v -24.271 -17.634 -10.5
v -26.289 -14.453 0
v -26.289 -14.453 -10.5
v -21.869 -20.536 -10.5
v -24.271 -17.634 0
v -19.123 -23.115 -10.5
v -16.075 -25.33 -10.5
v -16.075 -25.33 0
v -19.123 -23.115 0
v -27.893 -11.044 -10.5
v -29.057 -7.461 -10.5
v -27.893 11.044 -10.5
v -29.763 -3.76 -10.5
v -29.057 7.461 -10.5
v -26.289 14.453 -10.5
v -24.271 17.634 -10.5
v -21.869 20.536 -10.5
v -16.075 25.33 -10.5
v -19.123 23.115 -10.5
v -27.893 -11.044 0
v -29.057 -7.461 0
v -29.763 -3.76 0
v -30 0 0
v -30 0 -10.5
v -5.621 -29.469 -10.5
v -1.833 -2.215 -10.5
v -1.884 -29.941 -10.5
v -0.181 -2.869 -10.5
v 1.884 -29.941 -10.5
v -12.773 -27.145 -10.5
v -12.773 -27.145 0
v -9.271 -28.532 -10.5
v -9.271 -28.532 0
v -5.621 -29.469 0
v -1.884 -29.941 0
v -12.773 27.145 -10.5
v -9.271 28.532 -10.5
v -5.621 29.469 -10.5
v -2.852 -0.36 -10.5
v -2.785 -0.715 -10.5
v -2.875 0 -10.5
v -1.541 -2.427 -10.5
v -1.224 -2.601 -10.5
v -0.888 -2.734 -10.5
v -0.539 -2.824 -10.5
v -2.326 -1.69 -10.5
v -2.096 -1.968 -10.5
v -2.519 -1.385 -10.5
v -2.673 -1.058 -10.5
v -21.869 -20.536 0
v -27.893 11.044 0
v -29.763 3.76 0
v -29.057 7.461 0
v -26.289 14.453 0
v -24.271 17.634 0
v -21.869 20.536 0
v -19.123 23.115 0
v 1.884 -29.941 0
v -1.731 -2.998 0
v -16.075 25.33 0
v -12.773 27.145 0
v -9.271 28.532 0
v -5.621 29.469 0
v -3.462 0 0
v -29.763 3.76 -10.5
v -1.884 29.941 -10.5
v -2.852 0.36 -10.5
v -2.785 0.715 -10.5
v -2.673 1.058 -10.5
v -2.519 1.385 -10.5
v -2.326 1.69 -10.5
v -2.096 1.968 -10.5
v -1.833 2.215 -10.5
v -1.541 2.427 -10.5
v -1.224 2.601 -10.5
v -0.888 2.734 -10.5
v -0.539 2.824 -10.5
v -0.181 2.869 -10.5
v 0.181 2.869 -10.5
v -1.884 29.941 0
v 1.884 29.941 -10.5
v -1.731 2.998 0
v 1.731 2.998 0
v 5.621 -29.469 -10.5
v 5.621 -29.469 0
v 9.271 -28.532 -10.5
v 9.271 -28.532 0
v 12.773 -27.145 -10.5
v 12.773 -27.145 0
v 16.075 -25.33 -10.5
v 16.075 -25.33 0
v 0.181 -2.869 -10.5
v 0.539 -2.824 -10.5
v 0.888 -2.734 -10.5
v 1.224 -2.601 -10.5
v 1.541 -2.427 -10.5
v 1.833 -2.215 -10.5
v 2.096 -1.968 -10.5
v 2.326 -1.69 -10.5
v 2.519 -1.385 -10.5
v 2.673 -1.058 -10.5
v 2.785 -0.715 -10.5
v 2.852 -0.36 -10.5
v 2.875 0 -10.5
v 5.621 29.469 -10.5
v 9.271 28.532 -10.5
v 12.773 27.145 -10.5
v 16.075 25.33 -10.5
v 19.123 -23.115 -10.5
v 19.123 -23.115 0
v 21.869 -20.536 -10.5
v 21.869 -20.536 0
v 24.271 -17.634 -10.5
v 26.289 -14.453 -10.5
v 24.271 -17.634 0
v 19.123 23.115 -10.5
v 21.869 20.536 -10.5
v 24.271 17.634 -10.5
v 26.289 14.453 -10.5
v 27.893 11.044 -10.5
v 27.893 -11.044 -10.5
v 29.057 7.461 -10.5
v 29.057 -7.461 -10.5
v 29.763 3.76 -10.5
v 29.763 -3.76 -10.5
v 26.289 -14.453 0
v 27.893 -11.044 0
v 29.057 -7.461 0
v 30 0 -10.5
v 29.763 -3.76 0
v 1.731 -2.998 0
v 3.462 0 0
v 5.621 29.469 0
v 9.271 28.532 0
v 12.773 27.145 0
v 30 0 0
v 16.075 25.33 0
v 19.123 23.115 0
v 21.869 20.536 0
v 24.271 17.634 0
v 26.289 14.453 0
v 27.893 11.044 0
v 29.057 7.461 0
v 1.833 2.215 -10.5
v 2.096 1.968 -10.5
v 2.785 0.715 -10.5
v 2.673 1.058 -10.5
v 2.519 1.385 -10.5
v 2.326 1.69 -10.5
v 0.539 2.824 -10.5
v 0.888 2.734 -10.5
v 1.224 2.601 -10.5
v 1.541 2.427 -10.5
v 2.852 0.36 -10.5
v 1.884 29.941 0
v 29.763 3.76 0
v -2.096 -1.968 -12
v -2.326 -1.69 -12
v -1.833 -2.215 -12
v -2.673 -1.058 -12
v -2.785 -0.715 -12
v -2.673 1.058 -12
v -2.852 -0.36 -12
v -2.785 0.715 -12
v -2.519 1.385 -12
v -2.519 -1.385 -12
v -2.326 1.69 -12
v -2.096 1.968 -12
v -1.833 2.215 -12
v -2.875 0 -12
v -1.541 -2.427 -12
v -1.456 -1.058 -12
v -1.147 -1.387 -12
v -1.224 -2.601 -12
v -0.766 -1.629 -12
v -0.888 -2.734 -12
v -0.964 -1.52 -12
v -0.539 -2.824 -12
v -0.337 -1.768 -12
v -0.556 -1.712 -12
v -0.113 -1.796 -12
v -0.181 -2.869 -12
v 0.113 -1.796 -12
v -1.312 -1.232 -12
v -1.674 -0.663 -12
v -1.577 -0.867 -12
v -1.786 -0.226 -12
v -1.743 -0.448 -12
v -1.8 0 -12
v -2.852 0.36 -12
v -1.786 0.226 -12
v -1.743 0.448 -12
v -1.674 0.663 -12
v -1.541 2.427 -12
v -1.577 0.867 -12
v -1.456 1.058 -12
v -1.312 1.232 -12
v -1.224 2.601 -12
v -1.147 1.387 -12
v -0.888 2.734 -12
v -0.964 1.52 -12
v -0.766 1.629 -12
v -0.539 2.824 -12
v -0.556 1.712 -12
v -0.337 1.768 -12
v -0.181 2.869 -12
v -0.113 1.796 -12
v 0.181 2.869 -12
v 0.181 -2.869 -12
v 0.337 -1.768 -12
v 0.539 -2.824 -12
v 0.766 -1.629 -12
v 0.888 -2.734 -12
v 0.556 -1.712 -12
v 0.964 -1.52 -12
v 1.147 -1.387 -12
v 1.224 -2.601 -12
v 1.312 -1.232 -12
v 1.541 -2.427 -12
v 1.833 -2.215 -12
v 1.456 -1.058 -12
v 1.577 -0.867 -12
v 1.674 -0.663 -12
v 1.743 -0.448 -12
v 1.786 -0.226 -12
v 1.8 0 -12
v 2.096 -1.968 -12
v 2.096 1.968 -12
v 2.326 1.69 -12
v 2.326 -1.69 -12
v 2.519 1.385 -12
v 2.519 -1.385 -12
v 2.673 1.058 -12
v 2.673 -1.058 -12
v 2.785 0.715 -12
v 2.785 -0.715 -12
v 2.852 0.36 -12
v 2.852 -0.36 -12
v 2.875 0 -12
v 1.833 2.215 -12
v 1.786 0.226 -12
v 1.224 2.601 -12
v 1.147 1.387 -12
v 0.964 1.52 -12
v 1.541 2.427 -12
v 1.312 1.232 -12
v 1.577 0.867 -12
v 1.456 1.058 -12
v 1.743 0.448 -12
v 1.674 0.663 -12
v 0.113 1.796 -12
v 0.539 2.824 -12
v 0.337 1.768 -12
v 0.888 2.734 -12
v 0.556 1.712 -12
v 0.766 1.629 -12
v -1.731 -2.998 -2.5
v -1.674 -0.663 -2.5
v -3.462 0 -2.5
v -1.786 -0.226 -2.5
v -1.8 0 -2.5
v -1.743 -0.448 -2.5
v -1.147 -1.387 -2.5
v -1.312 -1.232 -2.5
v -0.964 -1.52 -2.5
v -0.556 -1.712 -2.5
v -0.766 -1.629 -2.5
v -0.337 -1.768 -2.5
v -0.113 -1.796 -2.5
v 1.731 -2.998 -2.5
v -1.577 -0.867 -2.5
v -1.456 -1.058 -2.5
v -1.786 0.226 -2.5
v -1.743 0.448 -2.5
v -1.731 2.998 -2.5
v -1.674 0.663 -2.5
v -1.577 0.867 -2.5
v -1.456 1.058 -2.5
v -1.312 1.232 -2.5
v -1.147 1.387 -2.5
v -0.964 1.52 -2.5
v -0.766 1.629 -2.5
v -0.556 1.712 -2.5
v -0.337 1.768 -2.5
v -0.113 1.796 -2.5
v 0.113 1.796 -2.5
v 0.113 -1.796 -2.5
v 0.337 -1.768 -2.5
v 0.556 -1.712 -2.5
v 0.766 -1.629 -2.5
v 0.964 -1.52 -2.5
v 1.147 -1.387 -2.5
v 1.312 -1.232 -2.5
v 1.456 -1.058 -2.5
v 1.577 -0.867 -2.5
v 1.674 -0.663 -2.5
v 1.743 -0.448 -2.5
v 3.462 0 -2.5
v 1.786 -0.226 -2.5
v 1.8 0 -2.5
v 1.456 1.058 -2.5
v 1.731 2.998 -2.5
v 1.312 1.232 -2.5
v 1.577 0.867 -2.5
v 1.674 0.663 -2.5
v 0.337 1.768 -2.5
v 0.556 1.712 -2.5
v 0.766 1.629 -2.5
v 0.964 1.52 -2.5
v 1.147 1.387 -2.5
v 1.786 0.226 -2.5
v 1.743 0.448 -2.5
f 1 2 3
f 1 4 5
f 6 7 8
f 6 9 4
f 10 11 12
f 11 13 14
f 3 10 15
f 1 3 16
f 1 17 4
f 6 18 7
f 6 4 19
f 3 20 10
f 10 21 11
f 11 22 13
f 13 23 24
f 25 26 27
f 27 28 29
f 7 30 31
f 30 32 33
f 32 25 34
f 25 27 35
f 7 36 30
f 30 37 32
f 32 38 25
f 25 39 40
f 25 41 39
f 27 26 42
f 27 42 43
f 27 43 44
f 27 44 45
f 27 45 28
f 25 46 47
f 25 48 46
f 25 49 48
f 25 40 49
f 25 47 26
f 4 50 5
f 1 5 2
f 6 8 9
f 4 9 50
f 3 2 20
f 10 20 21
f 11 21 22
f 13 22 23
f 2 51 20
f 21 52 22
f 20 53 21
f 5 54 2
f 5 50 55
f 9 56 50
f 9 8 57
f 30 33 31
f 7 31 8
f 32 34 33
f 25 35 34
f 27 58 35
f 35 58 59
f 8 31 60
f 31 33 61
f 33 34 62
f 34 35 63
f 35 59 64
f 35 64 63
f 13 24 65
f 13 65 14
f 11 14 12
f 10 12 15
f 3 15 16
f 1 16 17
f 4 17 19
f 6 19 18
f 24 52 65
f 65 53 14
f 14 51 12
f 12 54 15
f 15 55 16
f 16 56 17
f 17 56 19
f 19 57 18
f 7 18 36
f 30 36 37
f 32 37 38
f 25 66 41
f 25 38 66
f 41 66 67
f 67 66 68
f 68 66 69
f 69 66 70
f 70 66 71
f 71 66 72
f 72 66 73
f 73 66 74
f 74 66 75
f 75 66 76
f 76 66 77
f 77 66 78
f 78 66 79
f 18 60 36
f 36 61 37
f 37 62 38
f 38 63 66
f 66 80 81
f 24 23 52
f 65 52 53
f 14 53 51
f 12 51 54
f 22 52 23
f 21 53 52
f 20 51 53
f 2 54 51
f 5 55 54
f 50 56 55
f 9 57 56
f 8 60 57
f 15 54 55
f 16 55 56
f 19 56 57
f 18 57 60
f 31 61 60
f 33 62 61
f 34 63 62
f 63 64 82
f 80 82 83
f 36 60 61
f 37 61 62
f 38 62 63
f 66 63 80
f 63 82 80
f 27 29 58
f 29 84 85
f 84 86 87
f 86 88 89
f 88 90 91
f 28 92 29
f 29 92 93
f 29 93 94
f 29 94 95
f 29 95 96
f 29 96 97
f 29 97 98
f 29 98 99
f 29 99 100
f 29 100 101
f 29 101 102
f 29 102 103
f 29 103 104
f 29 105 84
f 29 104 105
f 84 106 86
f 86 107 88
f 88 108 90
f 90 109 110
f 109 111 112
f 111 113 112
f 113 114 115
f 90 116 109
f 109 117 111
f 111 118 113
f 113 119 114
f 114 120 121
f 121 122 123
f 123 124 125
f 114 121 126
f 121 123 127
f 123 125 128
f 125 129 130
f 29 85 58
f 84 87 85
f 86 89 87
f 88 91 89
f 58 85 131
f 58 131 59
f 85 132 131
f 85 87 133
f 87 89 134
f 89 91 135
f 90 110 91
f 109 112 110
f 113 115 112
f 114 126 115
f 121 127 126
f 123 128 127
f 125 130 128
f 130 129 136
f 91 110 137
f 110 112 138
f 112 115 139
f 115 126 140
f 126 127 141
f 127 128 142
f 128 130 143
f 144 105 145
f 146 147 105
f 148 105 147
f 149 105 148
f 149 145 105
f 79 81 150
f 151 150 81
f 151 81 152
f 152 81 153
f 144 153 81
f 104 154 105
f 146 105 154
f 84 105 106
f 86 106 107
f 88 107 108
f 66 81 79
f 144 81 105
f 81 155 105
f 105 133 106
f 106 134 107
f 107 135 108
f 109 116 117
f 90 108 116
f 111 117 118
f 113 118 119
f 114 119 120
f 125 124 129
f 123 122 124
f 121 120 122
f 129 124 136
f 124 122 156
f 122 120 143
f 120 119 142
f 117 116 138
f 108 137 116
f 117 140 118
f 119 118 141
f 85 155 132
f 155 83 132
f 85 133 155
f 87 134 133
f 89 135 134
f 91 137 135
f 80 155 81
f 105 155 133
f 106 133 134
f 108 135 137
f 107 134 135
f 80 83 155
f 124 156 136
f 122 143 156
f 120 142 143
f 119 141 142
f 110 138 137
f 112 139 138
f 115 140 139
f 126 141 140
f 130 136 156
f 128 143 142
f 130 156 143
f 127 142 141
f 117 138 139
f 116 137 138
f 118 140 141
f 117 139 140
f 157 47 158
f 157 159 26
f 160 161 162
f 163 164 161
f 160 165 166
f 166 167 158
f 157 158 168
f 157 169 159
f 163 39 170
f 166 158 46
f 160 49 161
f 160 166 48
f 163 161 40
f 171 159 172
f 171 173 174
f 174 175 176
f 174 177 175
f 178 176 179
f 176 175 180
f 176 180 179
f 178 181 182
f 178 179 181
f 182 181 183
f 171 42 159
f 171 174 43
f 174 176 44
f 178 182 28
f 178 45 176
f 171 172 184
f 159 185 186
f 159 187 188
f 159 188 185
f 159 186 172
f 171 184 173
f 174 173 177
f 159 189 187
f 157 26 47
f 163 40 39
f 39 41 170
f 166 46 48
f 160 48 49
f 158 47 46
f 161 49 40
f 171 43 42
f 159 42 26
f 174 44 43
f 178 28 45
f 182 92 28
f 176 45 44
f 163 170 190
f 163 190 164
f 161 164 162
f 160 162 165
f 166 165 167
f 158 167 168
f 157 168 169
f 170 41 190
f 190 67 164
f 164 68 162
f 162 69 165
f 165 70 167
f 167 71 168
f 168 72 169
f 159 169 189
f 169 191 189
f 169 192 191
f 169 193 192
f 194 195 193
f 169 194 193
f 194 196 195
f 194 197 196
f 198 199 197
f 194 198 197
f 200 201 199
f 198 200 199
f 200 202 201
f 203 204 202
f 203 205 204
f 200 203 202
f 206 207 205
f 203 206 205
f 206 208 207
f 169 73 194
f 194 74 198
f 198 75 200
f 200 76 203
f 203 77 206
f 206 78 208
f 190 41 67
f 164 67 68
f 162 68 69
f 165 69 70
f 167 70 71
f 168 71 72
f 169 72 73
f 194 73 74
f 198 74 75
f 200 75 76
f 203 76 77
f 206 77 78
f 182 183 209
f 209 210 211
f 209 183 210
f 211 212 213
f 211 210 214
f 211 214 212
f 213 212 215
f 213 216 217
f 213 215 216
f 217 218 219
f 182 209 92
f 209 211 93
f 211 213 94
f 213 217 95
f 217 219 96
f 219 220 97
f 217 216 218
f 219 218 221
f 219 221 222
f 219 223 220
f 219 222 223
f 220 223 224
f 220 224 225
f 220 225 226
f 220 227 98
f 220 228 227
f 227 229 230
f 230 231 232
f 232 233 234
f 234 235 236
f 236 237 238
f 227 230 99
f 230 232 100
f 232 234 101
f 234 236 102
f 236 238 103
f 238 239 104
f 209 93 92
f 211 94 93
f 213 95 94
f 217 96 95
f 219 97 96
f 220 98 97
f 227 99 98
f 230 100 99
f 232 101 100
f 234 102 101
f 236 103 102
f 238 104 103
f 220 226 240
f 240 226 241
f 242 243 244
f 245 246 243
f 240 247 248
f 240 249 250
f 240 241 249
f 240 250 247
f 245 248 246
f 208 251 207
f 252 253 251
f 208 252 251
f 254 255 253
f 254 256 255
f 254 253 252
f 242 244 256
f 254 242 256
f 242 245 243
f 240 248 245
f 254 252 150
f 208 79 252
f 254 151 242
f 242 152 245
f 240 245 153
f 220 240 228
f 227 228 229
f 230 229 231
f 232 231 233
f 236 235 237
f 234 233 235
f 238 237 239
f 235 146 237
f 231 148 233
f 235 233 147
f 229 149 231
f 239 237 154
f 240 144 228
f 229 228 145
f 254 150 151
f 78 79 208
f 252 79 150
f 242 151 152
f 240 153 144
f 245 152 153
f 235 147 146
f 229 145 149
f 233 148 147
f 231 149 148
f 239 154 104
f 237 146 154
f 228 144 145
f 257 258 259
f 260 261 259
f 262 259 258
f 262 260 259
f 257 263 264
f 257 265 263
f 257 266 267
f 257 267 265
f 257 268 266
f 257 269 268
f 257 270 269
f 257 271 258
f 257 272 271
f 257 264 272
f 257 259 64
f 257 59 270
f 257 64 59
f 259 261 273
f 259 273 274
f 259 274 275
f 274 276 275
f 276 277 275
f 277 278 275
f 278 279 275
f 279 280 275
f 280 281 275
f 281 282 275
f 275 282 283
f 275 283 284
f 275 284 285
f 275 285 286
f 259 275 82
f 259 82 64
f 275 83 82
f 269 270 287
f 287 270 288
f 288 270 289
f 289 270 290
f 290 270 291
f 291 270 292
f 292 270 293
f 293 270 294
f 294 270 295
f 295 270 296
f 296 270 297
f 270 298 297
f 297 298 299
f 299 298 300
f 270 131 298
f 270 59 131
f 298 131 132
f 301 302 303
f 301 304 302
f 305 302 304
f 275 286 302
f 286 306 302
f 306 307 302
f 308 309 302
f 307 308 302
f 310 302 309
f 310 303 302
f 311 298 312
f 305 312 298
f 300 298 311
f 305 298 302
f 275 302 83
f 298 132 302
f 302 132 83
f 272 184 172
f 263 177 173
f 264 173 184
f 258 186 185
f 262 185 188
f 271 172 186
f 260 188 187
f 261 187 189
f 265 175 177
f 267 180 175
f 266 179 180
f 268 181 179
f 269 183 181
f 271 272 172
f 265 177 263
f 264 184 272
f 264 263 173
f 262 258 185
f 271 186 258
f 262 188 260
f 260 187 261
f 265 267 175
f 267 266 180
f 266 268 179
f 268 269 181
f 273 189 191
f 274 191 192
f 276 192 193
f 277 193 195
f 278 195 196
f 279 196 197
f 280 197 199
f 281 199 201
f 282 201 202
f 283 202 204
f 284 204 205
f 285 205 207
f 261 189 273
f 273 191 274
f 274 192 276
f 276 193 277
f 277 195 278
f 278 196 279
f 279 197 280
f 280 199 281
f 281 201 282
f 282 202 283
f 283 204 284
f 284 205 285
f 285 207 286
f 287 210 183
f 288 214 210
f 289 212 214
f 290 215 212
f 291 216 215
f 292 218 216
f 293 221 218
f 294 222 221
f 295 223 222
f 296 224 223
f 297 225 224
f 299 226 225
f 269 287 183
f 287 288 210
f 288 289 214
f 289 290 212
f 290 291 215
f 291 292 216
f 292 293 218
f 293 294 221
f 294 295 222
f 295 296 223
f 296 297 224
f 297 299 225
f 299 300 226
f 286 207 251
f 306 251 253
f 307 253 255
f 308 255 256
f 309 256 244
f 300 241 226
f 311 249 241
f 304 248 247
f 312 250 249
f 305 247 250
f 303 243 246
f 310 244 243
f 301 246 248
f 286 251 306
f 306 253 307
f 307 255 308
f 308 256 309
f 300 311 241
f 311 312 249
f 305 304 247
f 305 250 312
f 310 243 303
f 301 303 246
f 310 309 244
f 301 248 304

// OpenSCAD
$fn = 50;


difference() {
	union() {
		translate(v = [0, 0, -10.5000000000]) {
			cylinder(h = 10.5000000000, r = 30.0000000000);
		}
		#translate(v = [0, 0, -12.0000000000]) {
			cylinder(h = 12, r = 2.8750000000);
		}
	}
	union() {
		translate(v = [0, 0, 0]) {
			rotate(a = [0, 0, 0]) {
				difference() {
					union() {
						translate(v = [0, 0, -2.5000000000]) {
							linear_extrude(height = 2.5000000000) {
								polygon(points = [[3.4620000000, 0.0000000000], [1.7310000000, 2.9981799479], [-1.7310000000, 2.9981799479], [-3.4620000000, 0.0000000000], [-1.7310000000, -2.9981799479], [1.7310000000, -2.9981799479]]);
							}
						}
					}
					union();
				}
			}
		}
		#translate(v = [0, 0, -100.0000000000]) {
			cylinder(h = 200, r = 1.8000000000);
		}
	}
}
